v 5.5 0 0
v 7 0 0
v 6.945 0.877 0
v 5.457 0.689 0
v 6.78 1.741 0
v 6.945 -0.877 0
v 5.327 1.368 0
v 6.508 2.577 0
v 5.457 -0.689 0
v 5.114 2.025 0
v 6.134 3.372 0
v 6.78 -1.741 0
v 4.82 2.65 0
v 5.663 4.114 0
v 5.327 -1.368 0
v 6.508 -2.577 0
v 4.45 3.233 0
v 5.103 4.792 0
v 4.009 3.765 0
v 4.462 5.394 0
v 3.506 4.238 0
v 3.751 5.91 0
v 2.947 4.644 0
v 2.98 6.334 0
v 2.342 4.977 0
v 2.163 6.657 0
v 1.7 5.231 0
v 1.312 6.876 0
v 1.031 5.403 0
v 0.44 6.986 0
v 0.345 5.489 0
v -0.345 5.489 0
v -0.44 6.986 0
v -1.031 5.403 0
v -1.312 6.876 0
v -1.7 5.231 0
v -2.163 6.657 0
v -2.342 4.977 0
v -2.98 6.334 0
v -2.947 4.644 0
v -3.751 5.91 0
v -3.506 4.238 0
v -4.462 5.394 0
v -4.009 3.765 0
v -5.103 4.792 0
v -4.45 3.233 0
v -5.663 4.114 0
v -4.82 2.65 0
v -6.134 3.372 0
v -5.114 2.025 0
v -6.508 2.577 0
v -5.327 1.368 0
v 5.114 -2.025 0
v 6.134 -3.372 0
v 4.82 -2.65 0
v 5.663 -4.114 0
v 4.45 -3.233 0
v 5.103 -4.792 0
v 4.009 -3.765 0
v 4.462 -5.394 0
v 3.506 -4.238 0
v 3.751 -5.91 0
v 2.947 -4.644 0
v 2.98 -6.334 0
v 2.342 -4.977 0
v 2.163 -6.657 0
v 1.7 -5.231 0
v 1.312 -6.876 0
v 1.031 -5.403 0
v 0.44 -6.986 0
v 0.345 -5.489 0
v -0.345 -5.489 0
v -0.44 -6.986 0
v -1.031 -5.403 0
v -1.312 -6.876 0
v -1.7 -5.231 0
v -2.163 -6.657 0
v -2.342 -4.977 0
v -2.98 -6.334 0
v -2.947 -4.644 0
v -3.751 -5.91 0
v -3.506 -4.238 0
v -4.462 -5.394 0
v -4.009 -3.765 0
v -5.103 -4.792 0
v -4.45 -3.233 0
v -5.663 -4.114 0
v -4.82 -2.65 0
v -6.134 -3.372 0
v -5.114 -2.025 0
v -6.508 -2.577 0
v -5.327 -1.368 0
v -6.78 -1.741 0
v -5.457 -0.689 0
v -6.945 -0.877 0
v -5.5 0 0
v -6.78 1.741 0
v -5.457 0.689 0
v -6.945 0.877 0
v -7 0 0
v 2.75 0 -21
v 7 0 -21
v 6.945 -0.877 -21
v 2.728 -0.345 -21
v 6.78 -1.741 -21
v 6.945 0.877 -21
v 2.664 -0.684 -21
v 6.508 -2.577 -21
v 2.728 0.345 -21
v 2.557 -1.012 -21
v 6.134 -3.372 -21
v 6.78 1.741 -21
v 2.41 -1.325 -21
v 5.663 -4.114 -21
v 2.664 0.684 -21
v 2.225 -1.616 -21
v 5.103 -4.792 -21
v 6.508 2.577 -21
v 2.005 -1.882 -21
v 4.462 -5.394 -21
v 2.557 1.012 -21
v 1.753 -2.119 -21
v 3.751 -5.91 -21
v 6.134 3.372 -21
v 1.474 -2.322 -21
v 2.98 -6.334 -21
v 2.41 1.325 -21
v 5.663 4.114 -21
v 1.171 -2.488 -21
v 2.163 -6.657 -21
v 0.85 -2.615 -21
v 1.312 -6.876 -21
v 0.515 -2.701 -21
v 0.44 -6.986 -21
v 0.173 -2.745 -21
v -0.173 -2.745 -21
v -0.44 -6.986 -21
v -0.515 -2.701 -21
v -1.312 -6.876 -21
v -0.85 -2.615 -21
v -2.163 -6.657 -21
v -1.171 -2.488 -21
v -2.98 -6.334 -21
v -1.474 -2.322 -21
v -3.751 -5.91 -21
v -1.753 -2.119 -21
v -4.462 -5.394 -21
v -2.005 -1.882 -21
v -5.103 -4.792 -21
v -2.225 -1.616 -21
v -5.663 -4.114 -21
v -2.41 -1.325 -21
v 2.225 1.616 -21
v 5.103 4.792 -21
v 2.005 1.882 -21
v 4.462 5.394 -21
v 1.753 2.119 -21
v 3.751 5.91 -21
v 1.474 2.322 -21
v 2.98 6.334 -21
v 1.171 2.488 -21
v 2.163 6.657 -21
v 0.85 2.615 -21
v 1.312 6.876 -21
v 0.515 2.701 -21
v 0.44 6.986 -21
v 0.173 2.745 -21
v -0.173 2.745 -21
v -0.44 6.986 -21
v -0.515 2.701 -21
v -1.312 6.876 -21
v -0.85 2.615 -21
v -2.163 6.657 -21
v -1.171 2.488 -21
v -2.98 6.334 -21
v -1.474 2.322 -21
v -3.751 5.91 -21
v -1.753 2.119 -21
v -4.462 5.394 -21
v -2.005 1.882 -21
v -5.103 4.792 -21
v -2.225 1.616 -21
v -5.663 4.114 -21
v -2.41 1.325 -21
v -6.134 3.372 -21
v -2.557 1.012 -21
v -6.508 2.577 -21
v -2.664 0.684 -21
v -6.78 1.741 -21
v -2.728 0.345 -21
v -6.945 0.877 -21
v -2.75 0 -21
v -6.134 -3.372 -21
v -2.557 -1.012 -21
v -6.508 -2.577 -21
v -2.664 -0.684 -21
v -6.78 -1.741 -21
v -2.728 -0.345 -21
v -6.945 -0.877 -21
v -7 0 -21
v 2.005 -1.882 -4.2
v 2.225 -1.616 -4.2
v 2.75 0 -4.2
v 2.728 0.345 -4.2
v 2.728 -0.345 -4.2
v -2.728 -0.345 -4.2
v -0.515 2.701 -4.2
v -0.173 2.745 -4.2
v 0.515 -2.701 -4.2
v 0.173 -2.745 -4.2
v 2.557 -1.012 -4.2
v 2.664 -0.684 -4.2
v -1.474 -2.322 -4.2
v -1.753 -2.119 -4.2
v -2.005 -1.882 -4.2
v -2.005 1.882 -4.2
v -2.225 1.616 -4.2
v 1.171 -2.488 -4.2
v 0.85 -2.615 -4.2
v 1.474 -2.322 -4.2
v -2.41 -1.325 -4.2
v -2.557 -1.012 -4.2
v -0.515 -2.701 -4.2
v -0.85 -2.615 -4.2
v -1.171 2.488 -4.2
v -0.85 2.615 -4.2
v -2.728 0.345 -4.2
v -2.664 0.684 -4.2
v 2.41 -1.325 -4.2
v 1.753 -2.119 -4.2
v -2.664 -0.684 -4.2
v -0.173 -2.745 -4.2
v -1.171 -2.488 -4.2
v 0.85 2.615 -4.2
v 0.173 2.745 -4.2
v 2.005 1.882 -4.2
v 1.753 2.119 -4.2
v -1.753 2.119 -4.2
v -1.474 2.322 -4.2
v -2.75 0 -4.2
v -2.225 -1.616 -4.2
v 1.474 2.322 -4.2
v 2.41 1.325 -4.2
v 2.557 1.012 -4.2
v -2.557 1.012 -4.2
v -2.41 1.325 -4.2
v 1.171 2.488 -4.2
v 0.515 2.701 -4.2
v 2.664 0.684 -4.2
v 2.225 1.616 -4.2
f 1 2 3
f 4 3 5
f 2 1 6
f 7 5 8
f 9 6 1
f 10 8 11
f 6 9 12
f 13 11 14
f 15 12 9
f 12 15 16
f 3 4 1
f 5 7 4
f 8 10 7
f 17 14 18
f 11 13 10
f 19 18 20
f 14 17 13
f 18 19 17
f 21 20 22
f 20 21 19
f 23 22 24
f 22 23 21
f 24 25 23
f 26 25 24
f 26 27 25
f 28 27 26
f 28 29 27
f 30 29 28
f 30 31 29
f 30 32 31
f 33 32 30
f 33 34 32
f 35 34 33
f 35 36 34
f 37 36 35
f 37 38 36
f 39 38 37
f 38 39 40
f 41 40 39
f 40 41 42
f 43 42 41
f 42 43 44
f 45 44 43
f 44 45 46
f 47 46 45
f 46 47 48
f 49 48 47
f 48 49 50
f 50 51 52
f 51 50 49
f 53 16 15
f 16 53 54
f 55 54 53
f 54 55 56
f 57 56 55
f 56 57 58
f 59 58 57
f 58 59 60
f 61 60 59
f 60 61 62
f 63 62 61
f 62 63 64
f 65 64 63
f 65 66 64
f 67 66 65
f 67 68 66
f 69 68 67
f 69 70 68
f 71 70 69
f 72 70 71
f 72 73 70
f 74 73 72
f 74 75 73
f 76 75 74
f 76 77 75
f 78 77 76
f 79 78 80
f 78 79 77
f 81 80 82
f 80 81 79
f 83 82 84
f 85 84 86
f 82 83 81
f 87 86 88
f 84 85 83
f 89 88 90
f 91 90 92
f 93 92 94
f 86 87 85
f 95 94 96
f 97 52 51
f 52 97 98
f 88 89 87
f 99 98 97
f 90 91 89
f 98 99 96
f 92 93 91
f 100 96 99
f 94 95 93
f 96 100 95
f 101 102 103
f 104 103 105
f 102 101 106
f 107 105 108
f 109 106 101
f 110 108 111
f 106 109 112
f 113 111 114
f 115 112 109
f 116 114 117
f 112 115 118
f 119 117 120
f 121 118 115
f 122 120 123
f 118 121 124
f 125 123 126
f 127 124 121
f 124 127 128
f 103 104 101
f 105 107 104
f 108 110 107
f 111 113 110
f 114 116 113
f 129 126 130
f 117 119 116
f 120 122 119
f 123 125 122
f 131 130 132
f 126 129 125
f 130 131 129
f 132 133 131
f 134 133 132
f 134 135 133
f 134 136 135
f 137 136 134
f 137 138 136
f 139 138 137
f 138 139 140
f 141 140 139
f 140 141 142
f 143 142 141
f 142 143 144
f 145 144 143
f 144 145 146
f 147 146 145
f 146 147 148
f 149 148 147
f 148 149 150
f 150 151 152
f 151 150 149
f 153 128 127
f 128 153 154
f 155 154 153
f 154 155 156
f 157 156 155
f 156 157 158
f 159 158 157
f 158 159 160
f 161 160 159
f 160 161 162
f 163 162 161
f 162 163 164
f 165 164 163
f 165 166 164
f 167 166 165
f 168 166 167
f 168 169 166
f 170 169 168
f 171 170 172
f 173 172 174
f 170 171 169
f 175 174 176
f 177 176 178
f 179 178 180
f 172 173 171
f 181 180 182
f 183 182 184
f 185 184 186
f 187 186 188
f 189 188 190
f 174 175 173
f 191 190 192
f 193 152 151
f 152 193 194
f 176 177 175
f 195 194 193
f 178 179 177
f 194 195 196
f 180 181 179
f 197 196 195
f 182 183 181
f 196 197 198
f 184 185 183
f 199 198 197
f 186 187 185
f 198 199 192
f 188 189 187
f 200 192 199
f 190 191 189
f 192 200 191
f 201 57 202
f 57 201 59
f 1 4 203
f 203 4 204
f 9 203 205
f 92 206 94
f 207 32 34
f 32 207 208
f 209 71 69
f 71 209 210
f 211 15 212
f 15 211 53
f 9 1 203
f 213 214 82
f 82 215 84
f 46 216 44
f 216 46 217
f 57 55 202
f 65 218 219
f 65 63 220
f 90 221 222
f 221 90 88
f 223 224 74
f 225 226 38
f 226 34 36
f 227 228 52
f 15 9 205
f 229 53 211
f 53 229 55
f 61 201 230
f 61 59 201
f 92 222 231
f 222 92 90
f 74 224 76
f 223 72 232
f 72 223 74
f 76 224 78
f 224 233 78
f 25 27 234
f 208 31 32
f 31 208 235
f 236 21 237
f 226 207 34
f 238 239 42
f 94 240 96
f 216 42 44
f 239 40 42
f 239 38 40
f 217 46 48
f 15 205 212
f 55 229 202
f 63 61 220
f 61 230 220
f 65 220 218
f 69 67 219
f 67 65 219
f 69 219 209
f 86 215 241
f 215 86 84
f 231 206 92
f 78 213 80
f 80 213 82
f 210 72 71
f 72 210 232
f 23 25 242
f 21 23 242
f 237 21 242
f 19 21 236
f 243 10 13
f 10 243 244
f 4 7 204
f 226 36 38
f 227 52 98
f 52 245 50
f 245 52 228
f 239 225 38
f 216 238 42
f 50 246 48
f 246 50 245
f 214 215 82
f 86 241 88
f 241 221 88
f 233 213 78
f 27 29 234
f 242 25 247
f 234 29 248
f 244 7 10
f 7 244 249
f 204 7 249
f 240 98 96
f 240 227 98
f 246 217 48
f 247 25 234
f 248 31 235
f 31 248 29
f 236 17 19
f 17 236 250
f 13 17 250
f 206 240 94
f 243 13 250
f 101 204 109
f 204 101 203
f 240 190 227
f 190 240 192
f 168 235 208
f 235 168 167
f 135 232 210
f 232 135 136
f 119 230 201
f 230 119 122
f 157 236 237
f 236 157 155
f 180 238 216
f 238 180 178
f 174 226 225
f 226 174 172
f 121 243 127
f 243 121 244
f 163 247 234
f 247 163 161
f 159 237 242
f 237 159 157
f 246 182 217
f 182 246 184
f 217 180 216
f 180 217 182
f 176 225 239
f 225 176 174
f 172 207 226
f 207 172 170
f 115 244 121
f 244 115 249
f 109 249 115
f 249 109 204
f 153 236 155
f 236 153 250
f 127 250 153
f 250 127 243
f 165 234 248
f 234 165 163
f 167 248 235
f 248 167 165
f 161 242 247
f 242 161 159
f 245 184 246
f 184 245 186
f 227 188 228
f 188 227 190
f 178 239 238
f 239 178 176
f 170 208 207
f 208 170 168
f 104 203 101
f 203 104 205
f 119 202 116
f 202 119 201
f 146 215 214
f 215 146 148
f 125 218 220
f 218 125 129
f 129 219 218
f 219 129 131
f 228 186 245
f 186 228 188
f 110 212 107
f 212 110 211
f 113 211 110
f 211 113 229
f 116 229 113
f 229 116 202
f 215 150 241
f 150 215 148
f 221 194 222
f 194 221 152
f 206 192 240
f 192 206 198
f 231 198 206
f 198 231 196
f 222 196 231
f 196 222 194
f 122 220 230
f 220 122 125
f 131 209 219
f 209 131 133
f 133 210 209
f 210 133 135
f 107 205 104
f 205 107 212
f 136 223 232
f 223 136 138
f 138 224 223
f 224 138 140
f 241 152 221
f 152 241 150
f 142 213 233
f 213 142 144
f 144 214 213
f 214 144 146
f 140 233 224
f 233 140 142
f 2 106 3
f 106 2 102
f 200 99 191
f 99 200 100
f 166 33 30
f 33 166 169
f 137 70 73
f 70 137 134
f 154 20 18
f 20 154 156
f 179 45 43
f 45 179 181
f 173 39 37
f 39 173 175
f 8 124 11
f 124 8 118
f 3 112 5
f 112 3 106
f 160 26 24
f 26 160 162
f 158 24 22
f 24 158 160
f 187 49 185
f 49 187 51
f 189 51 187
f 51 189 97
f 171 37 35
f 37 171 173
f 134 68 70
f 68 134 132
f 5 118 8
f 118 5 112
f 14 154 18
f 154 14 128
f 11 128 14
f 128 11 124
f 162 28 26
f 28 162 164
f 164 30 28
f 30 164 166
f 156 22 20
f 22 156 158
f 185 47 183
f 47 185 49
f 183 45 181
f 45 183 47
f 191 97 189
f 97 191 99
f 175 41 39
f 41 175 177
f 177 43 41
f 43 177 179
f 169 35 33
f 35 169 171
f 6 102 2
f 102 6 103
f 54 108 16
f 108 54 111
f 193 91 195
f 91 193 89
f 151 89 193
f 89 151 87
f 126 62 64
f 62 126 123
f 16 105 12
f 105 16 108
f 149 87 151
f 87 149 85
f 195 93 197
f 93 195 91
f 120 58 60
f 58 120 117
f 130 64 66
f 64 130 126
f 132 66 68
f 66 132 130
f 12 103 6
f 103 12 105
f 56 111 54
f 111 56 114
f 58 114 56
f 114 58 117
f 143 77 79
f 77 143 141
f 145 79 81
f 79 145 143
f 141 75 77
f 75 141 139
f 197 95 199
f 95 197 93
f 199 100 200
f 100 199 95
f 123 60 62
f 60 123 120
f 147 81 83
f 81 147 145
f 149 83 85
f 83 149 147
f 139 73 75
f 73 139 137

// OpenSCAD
$fn = 50;


difference() {
	union() {
		translate(v = [0, 0, -21.0000000000]) {
			cylinder(h = 21, r = 7.0000000000);
		}
	}
	union() {
		translate(v = [0, 0, 0]) {
			rotate(a = [0, 0, 0]) {
				difference() {
					union() {
						#translate(v = [0, 0, -21.0000000000]) {
							cylinder(h = 21, r = 2.2500000000);
						}
						#translate(v = [0, 0, -4.2000000000]) {
							cylinder(h = 4.2000000000, r1 = 2.7500000000, r2 = 5.5000000000);
						}
						#translate(v = [0, 0, -21.0000000000]) {
							cylinder(h = 21, r = 2.7500000000);
						}
						#translate(v = [0, 0, -21.0000000000]) {
							cylinder(h = 21, r = 2.2500000000);
						}
					}
					union();
				}
			}
		}
	}
}
